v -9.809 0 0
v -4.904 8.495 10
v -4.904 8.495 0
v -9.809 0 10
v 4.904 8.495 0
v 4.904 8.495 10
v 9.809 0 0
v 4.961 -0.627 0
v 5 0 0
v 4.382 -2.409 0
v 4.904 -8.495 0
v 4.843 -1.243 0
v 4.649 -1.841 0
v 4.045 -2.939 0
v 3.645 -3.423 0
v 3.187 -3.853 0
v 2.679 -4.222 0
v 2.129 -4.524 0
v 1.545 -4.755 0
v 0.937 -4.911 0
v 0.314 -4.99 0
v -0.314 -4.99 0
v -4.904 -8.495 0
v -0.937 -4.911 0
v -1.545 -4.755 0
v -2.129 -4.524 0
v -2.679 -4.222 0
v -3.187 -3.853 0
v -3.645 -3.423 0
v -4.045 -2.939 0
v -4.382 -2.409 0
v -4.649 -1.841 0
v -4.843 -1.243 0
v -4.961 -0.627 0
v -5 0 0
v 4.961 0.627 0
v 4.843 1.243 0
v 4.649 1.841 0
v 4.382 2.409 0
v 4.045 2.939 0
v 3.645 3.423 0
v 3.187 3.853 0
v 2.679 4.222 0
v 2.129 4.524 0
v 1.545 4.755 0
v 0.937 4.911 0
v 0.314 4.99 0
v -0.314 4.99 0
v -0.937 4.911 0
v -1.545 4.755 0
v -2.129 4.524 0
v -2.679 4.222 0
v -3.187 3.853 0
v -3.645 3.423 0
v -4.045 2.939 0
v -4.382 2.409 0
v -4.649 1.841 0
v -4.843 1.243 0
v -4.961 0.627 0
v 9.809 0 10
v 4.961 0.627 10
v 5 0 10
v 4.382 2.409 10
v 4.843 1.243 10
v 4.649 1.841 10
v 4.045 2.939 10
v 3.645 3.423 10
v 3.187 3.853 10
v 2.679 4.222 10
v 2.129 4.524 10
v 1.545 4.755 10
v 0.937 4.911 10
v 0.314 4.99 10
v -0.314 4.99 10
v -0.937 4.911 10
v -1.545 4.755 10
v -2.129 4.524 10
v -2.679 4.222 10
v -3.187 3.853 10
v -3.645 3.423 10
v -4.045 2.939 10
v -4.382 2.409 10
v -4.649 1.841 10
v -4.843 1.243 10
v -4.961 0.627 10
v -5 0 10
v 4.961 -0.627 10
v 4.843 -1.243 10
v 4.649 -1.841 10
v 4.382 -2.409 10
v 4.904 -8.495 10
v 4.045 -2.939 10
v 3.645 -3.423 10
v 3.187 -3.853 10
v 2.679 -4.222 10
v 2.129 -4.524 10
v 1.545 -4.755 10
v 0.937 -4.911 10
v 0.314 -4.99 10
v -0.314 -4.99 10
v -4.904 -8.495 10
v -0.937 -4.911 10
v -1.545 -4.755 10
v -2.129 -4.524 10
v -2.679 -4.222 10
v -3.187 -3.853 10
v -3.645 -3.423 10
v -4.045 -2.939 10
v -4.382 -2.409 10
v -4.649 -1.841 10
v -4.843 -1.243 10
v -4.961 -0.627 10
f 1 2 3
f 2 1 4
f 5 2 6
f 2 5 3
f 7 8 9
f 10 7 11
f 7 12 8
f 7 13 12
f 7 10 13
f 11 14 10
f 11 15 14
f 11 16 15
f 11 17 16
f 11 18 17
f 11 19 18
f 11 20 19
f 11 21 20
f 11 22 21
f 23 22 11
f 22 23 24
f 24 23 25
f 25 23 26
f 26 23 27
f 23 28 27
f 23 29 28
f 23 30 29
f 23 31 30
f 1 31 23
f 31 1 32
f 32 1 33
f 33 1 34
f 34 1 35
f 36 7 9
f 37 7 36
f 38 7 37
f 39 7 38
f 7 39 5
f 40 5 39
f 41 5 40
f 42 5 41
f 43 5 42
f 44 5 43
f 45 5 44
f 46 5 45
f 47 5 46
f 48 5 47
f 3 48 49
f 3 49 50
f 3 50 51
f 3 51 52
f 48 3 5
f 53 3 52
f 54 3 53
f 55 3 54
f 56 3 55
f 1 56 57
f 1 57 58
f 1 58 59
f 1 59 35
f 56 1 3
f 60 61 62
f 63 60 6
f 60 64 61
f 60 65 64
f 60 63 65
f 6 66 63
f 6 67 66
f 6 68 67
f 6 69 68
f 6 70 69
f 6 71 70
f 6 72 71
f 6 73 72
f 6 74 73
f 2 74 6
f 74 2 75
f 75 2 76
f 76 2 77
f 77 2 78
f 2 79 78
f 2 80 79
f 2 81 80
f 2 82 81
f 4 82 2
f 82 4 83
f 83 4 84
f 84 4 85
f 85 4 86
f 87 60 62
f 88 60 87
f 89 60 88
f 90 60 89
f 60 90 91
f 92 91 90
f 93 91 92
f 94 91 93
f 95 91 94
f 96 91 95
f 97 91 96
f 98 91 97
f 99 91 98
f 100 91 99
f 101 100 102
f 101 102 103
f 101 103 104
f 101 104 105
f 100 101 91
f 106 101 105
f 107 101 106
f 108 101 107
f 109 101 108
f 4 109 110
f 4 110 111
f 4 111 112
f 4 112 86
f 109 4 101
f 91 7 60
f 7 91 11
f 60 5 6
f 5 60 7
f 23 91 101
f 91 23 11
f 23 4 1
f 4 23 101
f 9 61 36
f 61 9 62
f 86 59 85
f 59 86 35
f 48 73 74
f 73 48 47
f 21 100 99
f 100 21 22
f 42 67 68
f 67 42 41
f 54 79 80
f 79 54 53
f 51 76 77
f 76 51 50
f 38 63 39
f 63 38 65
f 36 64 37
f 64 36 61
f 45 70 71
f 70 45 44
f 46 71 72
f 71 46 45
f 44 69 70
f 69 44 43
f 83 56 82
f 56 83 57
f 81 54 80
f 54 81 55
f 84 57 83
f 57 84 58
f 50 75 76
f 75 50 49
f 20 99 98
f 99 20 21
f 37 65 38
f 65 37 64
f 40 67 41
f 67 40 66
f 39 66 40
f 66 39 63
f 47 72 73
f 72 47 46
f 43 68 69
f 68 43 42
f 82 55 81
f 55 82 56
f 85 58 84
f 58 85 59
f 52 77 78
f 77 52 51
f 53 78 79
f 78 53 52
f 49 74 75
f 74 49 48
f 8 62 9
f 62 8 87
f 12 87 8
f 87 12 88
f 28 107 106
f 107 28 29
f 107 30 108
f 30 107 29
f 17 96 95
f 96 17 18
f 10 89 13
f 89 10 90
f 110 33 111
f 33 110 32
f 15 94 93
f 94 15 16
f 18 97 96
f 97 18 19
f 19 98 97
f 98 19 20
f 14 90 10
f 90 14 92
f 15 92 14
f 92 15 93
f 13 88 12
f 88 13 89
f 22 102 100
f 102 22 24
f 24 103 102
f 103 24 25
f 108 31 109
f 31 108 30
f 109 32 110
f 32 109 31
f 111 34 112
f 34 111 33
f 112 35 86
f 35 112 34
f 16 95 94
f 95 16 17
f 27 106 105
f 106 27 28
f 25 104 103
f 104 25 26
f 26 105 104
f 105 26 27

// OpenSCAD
$fn = 50;


difference() {
	union() {
		translate(v = [0, 0, 0]) {
			rotate(a = [0, 0, 0]) {
				translate(v = [0, 0, 0]) {
					rotate(a = [0, 0, 0]) {
						linear_extrude(height = 10) {
							polygon(points = [[9.8090000000, 0.0000000000], [4.9045000000, 8.4948431857], [-4.9045000000, 8.4948431857], [-9.8090000000, 0.0000000000], [-4.9045000000, -8.4948431857], [4.9045000000, -8.4948431857]]);
						}
					}
				}
			}
		}
	}
	union() {
		#translate(v = [0, 0, -10]) {
			rotate(a = [0, 0, 0]) {
				cylinder(h = 100, r = 5.0000000000);
			}
		}
	}
}
